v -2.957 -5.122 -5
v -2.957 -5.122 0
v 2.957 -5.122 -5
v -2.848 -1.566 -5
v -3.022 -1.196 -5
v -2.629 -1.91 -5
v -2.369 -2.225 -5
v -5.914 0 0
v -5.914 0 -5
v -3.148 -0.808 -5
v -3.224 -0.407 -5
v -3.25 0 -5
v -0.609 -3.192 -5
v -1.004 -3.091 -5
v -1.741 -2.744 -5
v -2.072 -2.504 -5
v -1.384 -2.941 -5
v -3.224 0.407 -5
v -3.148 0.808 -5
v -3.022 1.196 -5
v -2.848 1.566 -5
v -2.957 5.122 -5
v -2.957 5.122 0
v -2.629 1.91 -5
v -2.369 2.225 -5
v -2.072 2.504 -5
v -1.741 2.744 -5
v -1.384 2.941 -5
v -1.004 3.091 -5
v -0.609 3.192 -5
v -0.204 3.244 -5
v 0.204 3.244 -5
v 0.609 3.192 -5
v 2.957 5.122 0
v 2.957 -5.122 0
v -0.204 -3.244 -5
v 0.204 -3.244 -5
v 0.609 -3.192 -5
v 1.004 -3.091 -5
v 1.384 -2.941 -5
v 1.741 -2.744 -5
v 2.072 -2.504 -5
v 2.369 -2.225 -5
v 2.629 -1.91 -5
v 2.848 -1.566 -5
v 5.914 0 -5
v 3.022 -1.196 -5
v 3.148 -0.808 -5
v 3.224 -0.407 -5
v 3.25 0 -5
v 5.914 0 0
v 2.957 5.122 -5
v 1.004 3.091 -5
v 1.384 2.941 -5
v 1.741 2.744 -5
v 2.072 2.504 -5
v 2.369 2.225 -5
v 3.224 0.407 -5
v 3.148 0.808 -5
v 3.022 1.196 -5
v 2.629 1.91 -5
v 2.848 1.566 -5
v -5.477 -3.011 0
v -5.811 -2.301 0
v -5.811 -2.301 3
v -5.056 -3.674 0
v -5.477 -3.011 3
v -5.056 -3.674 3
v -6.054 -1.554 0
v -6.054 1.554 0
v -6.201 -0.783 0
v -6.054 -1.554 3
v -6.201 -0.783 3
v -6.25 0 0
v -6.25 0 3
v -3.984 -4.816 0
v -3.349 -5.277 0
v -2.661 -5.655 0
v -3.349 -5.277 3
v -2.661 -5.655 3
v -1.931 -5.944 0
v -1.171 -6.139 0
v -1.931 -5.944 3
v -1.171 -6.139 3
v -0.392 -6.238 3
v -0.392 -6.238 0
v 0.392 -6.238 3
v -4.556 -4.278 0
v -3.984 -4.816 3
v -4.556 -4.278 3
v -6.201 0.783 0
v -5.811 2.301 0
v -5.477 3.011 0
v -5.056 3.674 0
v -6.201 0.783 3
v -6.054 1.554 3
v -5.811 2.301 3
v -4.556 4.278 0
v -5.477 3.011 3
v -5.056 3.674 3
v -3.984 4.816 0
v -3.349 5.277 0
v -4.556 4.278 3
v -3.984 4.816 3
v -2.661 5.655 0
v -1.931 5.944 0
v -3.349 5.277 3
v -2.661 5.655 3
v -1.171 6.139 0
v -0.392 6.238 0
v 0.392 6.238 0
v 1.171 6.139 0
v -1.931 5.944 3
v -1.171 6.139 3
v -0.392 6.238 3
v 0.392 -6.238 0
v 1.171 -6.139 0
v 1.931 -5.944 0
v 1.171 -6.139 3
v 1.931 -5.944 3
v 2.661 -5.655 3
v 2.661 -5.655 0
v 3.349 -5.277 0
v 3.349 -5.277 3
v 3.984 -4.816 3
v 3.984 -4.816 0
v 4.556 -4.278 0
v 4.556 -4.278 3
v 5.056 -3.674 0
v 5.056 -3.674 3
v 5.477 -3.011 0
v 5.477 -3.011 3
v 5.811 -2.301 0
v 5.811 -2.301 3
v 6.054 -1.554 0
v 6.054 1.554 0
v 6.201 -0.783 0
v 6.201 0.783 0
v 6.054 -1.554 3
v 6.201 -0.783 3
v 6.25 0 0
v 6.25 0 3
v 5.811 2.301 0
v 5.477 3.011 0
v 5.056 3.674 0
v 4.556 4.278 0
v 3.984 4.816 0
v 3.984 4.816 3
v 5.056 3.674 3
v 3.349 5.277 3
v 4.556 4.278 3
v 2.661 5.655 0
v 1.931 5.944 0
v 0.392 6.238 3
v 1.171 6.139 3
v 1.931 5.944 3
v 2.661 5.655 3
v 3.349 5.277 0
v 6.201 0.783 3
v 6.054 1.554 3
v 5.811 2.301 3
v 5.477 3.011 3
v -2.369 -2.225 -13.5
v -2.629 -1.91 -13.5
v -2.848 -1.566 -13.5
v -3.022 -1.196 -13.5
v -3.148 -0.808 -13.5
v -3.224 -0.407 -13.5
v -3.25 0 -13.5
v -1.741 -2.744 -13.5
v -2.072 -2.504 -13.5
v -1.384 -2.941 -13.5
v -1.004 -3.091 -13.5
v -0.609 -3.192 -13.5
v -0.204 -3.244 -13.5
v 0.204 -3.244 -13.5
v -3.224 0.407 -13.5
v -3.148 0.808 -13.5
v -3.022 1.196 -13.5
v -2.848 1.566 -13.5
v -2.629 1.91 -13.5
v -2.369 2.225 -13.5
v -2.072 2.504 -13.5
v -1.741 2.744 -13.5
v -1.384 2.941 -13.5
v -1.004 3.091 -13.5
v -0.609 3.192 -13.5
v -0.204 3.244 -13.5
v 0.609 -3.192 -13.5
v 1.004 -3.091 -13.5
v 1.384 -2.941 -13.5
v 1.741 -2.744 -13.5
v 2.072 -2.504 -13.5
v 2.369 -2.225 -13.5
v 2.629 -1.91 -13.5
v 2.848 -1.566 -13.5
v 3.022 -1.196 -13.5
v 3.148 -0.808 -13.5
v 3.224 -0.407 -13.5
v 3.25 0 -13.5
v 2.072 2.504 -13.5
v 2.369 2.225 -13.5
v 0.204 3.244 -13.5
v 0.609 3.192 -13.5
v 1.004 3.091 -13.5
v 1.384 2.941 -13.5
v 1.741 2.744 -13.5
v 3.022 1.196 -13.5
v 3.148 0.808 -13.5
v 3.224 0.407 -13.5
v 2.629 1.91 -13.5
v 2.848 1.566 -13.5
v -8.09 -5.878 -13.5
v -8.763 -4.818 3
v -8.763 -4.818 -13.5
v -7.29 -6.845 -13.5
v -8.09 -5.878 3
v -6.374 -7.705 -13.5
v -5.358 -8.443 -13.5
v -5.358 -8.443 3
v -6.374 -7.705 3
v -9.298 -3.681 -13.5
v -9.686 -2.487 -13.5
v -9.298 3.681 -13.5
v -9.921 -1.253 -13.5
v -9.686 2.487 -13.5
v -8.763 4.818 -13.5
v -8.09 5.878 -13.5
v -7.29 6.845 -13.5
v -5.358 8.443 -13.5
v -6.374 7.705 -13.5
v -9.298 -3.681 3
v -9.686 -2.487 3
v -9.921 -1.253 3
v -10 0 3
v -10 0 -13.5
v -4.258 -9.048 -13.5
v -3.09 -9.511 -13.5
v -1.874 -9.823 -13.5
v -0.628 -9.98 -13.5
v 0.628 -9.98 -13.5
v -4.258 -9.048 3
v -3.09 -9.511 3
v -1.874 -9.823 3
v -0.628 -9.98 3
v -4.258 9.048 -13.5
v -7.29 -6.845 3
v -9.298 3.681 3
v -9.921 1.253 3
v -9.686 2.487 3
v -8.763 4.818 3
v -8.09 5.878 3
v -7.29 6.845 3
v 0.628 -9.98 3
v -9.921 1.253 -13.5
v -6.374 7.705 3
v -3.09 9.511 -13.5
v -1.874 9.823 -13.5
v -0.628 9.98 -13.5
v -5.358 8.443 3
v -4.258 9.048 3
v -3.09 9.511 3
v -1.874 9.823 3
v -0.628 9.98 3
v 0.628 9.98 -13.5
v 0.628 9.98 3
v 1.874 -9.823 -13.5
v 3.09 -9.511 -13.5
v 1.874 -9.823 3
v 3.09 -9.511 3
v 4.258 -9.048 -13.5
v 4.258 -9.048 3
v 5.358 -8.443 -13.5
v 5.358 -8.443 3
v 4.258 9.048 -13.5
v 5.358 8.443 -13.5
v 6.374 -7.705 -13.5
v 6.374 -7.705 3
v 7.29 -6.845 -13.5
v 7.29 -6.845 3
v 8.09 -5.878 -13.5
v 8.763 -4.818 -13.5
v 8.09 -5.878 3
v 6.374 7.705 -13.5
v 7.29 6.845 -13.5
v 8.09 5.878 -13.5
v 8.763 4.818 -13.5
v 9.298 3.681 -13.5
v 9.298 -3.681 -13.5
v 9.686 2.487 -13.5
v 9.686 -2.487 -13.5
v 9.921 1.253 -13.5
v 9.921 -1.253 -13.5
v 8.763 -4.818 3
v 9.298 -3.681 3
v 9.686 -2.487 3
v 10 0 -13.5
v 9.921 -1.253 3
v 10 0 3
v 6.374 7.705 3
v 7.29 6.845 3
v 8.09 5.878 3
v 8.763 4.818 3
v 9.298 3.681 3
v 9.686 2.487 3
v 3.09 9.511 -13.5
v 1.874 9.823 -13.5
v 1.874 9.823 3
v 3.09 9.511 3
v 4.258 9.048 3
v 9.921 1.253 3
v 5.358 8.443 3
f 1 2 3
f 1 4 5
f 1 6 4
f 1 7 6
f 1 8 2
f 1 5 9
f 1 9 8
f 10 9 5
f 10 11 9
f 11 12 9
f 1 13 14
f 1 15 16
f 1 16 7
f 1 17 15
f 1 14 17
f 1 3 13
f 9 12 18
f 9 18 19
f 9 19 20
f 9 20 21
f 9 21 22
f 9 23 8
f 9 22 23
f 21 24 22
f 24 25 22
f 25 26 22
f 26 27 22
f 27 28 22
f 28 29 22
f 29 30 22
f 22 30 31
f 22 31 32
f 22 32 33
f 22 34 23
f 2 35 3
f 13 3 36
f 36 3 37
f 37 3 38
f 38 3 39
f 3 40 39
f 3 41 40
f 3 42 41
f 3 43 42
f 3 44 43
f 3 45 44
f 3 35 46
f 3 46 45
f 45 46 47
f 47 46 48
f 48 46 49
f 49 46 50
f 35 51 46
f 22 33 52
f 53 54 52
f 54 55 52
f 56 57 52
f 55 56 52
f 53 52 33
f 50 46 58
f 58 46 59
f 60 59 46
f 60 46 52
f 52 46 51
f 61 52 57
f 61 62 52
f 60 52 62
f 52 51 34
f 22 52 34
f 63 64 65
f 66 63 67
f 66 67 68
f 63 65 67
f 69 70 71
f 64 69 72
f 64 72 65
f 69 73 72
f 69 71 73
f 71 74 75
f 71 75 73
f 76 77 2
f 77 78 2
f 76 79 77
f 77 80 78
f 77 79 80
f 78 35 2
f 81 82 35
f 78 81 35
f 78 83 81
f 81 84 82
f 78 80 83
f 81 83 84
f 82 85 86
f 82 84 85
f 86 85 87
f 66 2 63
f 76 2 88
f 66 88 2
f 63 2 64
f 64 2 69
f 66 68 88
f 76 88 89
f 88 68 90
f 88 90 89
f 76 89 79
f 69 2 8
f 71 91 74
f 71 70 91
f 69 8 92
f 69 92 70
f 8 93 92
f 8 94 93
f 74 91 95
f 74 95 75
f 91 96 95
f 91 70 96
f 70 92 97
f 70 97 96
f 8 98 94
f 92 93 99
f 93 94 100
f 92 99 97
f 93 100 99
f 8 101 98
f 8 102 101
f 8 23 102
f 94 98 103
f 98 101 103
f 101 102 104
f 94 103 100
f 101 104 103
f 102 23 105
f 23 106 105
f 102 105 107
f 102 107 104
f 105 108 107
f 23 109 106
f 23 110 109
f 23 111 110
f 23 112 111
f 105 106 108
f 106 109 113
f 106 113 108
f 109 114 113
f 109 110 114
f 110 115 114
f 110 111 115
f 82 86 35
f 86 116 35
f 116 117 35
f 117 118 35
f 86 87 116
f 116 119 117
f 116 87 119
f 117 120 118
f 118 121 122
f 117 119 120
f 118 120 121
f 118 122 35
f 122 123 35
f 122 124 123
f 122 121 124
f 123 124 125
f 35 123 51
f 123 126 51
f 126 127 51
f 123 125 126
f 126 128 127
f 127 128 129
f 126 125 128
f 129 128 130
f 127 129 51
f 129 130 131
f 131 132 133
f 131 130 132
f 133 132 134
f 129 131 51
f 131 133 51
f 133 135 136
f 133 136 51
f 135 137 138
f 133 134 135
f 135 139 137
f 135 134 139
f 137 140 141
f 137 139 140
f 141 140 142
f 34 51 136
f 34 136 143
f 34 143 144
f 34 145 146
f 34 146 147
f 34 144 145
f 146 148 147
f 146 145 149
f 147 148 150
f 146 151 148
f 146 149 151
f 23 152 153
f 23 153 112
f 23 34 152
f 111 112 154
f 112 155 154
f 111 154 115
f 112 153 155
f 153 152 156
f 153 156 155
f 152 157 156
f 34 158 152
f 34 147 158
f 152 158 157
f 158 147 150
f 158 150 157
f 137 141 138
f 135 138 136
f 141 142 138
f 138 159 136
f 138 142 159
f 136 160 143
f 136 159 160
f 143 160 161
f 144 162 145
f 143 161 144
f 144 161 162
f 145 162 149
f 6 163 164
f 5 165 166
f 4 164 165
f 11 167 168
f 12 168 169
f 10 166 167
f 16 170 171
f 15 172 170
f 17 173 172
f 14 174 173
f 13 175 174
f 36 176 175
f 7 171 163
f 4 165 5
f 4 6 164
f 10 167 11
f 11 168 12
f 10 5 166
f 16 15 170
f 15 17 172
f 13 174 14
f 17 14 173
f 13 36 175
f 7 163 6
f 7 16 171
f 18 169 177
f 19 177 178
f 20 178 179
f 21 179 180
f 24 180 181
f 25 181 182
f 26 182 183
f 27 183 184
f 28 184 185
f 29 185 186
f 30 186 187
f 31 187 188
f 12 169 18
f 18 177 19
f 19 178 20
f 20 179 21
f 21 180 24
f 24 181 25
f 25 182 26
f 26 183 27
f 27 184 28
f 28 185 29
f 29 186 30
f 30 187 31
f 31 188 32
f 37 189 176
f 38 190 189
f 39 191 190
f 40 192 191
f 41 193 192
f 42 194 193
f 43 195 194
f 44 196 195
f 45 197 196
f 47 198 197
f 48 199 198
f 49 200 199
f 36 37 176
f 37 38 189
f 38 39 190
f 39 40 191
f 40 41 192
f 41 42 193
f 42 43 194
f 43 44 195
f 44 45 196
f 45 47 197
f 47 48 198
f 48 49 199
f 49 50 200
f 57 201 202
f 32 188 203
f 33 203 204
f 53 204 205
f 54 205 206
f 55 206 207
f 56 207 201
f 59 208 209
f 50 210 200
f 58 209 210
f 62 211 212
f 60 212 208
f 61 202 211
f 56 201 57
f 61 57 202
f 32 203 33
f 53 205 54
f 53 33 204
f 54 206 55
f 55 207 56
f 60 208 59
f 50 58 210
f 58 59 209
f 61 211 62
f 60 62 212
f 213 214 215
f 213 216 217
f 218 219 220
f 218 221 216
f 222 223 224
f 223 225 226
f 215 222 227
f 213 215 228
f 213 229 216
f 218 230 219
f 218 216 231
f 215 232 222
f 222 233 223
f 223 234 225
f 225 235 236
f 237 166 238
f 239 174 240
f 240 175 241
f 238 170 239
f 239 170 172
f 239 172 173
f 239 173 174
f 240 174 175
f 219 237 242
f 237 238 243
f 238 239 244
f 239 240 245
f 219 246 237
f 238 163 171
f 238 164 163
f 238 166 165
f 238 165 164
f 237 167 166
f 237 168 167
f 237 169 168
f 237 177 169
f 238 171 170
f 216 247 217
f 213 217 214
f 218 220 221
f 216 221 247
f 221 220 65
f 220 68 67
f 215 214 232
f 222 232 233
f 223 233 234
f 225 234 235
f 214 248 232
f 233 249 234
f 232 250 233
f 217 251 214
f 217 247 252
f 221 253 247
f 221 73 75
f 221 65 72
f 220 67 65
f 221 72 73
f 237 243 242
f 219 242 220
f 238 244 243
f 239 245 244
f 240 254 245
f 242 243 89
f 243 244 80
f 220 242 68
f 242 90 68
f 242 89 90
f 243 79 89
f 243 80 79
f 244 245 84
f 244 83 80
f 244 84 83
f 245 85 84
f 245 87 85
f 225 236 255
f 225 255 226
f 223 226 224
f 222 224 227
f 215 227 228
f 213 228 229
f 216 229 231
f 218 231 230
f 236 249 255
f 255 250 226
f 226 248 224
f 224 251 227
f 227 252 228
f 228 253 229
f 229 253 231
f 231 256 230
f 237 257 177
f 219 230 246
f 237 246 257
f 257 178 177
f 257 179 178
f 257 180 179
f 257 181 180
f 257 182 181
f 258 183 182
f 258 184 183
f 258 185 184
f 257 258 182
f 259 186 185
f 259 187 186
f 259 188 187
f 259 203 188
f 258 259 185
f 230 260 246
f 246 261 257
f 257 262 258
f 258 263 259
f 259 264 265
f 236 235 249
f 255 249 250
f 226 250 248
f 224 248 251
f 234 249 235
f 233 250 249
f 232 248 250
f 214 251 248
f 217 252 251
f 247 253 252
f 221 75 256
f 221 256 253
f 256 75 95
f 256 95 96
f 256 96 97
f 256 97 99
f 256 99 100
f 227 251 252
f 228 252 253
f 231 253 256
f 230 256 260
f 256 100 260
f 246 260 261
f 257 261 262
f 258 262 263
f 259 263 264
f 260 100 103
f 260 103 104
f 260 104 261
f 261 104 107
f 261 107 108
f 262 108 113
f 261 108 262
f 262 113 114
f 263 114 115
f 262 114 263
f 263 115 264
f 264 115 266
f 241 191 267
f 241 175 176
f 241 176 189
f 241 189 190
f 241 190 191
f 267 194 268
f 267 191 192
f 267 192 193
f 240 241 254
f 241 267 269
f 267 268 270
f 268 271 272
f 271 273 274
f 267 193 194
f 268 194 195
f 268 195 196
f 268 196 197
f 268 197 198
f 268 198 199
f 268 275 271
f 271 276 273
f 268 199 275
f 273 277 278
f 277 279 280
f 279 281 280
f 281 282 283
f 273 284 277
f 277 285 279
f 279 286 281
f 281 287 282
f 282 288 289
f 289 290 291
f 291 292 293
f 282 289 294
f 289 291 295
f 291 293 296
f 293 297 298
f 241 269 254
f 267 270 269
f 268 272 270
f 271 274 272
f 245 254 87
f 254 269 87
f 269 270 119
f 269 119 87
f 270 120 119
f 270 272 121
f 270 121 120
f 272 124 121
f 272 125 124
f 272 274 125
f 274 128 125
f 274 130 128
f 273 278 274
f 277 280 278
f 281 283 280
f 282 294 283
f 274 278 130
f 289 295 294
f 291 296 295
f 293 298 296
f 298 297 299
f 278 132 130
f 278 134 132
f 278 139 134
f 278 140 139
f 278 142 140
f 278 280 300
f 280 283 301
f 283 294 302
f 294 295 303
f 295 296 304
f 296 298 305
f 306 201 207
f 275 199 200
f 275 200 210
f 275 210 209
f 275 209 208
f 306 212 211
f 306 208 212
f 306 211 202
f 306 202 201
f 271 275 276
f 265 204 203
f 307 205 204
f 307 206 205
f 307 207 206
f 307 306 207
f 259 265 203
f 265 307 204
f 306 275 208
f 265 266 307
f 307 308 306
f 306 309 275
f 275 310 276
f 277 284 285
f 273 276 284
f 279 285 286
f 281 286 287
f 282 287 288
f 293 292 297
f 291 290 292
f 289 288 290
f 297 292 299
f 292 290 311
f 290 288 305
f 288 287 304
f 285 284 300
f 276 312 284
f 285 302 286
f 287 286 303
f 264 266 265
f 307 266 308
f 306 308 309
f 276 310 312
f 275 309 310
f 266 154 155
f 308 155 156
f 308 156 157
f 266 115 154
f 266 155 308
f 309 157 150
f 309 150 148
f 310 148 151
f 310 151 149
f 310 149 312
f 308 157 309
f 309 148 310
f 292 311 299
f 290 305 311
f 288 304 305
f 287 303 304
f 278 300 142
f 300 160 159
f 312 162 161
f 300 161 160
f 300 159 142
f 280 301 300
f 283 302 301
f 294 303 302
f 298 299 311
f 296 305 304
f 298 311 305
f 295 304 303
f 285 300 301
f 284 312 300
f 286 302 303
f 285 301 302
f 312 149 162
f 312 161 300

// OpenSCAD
$fn = 50;

difference() {
	union() {
		translate(v = [0, 0, -13.5]) {
			cylinder(h = 16.5, r = 10.0);
		}
	}
	union() {
		translate(v = [0, 0, 0]) {
			rotate(a = [0, 0, 0]) {
				difference() {
					union() {
						translate(v = [0, 0, -5]) {
							linear_extrude(height = 5) {
								polygon(points = [[5.914249999999999, 0.0], [2.957125, 5.1218907443321156], [-2.9571249999999982, 5.1218907443321156], [-5.914249999999999, 7.242867331857232e-16], [-2.9571250000000022, -5.121890744332115], [2.9571249999999956, -5.121890744332118]]);
							}
						}
					}
					union();
				}
			}
		}
		#cylinder(h = 3, r = 6.25);
		#translate(v = [0, 0, -100.0]) {
			cylinder(h = 200, r = 3.25);
		}
	}
}
